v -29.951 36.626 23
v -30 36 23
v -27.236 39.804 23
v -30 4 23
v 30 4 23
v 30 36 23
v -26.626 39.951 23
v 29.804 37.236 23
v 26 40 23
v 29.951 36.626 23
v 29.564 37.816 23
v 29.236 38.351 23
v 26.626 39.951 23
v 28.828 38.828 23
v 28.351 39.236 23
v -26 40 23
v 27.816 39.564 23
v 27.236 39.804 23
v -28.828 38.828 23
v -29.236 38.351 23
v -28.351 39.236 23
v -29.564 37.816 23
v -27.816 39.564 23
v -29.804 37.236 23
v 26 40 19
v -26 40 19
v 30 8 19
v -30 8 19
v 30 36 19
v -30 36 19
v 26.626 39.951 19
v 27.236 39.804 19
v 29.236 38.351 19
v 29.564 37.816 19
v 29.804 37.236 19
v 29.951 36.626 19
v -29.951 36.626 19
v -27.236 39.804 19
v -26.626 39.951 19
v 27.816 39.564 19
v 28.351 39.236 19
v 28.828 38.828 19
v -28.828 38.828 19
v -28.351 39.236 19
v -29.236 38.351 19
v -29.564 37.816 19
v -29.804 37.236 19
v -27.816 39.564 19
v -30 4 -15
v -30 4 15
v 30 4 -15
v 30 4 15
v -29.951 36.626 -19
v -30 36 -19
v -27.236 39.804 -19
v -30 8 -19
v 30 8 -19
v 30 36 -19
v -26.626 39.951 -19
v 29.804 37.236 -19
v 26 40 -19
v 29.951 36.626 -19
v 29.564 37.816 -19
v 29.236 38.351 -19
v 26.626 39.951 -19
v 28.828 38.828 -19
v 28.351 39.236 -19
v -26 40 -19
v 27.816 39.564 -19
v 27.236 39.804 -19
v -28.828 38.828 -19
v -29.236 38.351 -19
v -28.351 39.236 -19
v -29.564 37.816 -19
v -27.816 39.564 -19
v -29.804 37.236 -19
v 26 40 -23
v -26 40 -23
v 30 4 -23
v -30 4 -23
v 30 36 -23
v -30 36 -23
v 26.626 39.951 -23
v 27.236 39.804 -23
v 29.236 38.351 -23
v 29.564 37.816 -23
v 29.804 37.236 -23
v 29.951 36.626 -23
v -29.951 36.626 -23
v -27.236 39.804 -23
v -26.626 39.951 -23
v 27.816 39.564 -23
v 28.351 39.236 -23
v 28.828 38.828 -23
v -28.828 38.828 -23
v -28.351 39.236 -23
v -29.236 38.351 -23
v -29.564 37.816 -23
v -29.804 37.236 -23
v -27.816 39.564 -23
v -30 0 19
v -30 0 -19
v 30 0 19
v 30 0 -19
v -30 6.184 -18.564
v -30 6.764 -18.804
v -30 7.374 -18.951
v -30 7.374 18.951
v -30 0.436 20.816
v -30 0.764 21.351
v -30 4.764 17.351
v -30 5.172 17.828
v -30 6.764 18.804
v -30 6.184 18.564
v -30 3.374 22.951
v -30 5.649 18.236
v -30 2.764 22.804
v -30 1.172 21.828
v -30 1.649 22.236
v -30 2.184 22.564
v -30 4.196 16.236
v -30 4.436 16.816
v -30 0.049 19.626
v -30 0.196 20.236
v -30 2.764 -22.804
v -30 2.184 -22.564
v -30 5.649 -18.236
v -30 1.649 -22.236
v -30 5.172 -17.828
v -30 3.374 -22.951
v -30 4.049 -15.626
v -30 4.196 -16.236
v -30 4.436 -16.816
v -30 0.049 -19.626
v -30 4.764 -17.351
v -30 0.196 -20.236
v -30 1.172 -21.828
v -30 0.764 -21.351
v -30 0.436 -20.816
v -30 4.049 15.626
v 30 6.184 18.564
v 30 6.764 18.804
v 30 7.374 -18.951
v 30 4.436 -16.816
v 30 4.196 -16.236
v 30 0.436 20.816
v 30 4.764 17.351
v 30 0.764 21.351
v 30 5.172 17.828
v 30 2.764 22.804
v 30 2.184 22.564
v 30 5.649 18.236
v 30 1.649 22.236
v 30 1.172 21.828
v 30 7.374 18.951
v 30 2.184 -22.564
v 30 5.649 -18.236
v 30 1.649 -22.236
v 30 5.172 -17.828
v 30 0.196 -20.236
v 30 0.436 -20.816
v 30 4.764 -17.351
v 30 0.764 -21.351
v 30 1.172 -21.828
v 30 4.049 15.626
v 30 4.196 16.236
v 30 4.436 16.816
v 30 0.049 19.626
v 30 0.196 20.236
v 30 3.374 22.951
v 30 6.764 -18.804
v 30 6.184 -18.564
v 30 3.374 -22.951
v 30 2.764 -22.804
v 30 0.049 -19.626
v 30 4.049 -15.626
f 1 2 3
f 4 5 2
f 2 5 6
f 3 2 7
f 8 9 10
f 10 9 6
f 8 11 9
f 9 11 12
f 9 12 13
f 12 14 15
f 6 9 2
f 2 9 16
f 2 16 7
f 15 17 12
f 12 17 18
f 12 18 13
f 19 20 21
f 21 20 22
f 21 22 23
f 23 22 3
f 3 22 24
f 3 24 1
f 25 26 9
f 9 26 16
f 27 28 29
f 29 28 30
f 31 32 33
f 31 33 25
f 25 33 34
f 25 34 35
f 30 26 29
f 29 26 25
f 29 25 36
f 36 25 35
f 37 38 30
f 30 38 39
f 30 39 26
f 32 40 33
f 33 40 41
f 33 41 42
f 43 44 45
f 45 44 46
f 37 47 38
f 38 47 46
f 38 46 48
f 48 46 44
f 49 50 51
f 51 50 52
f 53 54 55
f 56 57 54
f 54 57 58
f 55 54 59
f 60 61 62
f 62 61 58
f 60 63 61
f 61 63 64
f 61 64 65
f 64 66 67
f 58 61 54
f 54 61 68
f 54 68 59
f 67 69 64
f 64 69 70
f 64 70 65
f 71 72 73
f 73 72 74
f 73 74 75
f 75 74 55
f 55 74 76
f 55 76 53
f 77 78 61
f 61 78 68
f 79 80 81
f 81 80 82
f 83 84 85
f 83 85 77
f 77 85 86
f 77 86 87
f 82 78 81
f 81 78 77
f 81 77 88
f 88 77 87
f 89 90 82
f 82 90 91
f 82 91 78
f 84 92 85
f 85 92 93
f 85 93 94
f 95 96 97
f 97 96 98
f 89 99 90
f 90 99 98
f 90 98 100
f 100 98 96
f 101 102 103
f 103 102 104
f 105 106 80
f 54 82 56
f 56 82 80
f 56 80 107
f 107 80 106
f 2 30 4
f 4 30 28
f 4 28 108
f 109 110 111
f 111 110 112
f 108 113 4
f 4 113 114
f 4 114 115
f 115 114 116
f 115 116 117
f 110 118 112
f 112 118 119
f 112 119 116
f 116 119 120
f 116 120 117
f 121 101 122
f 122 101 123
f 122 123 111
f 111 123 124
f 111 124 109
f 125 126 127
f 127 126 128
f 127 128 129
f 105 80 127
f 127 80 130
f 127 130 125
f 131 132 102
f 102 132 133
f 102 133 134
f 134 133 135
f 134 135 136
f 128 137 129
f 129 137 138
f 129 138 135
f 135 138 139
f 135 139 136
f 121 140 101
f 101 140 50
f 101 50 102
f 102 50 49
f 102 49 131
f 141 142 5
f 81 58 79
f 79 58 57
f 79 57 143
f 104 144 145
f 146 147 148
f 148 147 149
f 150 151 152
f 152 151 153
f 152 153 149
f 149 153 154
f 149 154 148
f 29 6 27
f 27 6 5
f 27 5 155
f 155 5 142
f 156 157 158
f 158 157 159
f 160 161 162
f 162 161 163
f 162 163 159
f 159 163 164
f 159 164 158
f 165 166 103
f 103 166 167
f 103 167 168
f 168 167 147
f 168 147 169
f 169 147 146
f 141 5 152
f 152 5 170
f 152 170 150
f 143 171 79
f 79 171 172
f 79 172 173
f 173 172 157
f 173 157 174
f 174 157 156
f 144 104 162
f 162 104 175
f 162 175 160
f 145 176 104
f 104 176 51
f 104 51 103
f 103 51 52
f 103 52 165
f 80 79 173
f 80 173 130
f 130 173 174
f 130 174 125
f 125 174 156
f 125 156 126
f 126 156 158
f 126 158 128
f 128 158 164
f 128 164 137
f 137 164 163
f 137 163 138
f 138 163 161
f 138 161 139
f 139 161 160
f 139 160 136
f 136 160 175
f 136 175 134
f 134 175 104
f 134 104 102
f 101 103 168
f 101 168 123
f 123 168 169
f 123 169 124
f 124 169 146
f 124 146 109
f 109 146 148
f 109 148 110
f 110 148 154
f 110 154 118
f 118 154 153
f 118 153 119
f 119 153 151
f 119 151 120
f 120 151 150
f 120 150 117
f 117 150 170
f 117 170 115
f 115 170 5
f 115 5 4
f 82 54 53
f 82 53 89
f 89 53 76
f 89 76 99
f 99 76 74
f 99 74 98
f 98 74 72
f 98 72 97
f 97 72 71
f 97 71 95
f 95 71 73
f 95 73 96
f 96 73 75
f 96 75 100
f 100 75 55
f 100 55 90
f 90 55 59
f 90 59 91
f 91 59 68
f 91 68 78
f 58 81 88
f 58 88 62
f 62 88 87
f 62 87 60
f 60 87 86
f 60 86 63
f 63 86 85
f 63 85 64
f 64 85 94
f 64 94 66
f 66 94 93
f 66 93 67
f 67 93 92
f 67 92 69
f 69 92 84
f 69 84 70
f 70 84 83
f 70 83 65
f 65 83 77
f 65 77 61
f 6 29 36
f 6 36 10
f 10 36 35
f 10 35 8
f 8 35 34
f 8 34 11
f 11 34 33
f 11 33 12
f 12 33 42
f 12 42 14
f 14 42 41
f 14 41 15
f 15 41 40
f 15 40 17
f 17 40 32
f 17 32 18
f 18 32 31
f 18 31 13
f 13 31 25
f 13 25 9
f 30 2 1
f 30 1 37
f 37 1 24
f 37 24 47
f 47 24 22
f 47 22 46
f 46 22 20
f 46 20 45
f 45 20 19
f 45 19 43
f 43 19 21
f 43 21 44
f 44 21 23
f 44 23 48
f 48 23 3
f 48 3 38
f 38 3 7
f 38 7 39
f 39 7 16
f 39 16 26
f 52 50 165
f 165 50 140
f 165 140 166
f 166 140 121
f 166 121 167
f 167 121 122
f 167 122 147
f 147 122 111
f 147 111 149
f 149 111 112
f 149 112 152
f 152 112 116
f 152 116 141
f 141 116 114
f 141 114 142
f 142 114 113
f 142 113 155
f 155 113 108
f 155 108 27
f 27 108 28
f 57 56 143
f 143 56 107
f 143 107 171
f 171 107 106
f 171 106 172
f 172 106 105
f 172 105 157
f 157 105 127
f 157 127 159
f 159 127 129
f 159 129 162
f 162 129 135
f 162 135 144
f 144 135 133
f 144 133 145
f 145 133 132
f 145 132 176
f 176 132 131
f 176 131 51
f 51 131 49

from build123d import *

# Parameters (mm, degrees)
AUFSATZ_LINEAR_AUSTRAGEN1_DEPTH = 30
VERRUNDUNG1_R                   = 4
VERRUNDUNG2_R                   = 4
VERRUNDUNG3_R                   = 4
VERRUNDUNG4_R                   = 4
VERRUNDUNG5_R                   = 4
VERRUNDUNG6_R                   = 4
VERRUNDUNG7_R                   = 4


with BuildPart() as part:
    # Skizze1 → Aufsatz-Linear austragen1 (new, symmetric)
    with BuildSketch(Plane(origin=(0, 0, 0), x_dir=(0, 0, -1), z_dir=(1, 0, 0))):
        Polygon((-23, 40), (-19, 40), (-19, 4), (19, 4), (19, 40), (23, 40), (23, 0), (-23, 0), align=None)
    extrude(amount=AUFSATZ_LINEAR_AUSTRAGEN1_DEPTH, both=True)

    # Verrundung1
    verrundung1_edges = [part.edges().sort_by_distance(p)[0] for p in [
        (0, 0, -23),
    ]]
    fillet(verrundung1_edges, radius=VERRUNDUNG1_R)

    # Verrundung2
    verrundung2_edges = [part.edges().sort_by_distance(p)[0] for p in [
        (0, 0, 23),
    ]]
    fillet(verrundung2_edges, radius=VERRUNDUNG2_R)

    # Verrundung3
    verrundung3_edges = [part.edges().sort_by_distance(p)[0] for p in [
        (-30, 40, -21),
    ]]
    fillet(verrundung3_edges, radius=VERRUNDUNG3_R)

    # Verrundung4
    verrundung4_edges = [part.edges().sort_by_distance(p)[0] for p in [
        (30, 40, -21),
    ]]
    fillet(verrundung4_edges, radius=VERRUNDUNG4_R)

    # Verrundung5
    verrundung5_edges = [part.edges().sort_by_distance(p)[0] for p in [
        (-30, 40, 21),
        (30, 40, 21),
    ]]
    fillet(verrundung5_edges, radius=VERRUNDUNG5_R)

    # Verrundung6
    verrundung6_edges = [part.edges().sort_by_distance(p)[0] for p in [
        (0, 4, 19),
    ]]
    fillet(verrundung6_edges, radius=VERRUNDUNG6_R)

    # Verrundung7
    verrundung7_edges = [part.edges().sort_by_distance(p)[0] for p in [
        (0, 4, -19),
    ]]
    fillet(verrundung7_edges, radius=VERRUNDUNG7_R)


solid = part.part
